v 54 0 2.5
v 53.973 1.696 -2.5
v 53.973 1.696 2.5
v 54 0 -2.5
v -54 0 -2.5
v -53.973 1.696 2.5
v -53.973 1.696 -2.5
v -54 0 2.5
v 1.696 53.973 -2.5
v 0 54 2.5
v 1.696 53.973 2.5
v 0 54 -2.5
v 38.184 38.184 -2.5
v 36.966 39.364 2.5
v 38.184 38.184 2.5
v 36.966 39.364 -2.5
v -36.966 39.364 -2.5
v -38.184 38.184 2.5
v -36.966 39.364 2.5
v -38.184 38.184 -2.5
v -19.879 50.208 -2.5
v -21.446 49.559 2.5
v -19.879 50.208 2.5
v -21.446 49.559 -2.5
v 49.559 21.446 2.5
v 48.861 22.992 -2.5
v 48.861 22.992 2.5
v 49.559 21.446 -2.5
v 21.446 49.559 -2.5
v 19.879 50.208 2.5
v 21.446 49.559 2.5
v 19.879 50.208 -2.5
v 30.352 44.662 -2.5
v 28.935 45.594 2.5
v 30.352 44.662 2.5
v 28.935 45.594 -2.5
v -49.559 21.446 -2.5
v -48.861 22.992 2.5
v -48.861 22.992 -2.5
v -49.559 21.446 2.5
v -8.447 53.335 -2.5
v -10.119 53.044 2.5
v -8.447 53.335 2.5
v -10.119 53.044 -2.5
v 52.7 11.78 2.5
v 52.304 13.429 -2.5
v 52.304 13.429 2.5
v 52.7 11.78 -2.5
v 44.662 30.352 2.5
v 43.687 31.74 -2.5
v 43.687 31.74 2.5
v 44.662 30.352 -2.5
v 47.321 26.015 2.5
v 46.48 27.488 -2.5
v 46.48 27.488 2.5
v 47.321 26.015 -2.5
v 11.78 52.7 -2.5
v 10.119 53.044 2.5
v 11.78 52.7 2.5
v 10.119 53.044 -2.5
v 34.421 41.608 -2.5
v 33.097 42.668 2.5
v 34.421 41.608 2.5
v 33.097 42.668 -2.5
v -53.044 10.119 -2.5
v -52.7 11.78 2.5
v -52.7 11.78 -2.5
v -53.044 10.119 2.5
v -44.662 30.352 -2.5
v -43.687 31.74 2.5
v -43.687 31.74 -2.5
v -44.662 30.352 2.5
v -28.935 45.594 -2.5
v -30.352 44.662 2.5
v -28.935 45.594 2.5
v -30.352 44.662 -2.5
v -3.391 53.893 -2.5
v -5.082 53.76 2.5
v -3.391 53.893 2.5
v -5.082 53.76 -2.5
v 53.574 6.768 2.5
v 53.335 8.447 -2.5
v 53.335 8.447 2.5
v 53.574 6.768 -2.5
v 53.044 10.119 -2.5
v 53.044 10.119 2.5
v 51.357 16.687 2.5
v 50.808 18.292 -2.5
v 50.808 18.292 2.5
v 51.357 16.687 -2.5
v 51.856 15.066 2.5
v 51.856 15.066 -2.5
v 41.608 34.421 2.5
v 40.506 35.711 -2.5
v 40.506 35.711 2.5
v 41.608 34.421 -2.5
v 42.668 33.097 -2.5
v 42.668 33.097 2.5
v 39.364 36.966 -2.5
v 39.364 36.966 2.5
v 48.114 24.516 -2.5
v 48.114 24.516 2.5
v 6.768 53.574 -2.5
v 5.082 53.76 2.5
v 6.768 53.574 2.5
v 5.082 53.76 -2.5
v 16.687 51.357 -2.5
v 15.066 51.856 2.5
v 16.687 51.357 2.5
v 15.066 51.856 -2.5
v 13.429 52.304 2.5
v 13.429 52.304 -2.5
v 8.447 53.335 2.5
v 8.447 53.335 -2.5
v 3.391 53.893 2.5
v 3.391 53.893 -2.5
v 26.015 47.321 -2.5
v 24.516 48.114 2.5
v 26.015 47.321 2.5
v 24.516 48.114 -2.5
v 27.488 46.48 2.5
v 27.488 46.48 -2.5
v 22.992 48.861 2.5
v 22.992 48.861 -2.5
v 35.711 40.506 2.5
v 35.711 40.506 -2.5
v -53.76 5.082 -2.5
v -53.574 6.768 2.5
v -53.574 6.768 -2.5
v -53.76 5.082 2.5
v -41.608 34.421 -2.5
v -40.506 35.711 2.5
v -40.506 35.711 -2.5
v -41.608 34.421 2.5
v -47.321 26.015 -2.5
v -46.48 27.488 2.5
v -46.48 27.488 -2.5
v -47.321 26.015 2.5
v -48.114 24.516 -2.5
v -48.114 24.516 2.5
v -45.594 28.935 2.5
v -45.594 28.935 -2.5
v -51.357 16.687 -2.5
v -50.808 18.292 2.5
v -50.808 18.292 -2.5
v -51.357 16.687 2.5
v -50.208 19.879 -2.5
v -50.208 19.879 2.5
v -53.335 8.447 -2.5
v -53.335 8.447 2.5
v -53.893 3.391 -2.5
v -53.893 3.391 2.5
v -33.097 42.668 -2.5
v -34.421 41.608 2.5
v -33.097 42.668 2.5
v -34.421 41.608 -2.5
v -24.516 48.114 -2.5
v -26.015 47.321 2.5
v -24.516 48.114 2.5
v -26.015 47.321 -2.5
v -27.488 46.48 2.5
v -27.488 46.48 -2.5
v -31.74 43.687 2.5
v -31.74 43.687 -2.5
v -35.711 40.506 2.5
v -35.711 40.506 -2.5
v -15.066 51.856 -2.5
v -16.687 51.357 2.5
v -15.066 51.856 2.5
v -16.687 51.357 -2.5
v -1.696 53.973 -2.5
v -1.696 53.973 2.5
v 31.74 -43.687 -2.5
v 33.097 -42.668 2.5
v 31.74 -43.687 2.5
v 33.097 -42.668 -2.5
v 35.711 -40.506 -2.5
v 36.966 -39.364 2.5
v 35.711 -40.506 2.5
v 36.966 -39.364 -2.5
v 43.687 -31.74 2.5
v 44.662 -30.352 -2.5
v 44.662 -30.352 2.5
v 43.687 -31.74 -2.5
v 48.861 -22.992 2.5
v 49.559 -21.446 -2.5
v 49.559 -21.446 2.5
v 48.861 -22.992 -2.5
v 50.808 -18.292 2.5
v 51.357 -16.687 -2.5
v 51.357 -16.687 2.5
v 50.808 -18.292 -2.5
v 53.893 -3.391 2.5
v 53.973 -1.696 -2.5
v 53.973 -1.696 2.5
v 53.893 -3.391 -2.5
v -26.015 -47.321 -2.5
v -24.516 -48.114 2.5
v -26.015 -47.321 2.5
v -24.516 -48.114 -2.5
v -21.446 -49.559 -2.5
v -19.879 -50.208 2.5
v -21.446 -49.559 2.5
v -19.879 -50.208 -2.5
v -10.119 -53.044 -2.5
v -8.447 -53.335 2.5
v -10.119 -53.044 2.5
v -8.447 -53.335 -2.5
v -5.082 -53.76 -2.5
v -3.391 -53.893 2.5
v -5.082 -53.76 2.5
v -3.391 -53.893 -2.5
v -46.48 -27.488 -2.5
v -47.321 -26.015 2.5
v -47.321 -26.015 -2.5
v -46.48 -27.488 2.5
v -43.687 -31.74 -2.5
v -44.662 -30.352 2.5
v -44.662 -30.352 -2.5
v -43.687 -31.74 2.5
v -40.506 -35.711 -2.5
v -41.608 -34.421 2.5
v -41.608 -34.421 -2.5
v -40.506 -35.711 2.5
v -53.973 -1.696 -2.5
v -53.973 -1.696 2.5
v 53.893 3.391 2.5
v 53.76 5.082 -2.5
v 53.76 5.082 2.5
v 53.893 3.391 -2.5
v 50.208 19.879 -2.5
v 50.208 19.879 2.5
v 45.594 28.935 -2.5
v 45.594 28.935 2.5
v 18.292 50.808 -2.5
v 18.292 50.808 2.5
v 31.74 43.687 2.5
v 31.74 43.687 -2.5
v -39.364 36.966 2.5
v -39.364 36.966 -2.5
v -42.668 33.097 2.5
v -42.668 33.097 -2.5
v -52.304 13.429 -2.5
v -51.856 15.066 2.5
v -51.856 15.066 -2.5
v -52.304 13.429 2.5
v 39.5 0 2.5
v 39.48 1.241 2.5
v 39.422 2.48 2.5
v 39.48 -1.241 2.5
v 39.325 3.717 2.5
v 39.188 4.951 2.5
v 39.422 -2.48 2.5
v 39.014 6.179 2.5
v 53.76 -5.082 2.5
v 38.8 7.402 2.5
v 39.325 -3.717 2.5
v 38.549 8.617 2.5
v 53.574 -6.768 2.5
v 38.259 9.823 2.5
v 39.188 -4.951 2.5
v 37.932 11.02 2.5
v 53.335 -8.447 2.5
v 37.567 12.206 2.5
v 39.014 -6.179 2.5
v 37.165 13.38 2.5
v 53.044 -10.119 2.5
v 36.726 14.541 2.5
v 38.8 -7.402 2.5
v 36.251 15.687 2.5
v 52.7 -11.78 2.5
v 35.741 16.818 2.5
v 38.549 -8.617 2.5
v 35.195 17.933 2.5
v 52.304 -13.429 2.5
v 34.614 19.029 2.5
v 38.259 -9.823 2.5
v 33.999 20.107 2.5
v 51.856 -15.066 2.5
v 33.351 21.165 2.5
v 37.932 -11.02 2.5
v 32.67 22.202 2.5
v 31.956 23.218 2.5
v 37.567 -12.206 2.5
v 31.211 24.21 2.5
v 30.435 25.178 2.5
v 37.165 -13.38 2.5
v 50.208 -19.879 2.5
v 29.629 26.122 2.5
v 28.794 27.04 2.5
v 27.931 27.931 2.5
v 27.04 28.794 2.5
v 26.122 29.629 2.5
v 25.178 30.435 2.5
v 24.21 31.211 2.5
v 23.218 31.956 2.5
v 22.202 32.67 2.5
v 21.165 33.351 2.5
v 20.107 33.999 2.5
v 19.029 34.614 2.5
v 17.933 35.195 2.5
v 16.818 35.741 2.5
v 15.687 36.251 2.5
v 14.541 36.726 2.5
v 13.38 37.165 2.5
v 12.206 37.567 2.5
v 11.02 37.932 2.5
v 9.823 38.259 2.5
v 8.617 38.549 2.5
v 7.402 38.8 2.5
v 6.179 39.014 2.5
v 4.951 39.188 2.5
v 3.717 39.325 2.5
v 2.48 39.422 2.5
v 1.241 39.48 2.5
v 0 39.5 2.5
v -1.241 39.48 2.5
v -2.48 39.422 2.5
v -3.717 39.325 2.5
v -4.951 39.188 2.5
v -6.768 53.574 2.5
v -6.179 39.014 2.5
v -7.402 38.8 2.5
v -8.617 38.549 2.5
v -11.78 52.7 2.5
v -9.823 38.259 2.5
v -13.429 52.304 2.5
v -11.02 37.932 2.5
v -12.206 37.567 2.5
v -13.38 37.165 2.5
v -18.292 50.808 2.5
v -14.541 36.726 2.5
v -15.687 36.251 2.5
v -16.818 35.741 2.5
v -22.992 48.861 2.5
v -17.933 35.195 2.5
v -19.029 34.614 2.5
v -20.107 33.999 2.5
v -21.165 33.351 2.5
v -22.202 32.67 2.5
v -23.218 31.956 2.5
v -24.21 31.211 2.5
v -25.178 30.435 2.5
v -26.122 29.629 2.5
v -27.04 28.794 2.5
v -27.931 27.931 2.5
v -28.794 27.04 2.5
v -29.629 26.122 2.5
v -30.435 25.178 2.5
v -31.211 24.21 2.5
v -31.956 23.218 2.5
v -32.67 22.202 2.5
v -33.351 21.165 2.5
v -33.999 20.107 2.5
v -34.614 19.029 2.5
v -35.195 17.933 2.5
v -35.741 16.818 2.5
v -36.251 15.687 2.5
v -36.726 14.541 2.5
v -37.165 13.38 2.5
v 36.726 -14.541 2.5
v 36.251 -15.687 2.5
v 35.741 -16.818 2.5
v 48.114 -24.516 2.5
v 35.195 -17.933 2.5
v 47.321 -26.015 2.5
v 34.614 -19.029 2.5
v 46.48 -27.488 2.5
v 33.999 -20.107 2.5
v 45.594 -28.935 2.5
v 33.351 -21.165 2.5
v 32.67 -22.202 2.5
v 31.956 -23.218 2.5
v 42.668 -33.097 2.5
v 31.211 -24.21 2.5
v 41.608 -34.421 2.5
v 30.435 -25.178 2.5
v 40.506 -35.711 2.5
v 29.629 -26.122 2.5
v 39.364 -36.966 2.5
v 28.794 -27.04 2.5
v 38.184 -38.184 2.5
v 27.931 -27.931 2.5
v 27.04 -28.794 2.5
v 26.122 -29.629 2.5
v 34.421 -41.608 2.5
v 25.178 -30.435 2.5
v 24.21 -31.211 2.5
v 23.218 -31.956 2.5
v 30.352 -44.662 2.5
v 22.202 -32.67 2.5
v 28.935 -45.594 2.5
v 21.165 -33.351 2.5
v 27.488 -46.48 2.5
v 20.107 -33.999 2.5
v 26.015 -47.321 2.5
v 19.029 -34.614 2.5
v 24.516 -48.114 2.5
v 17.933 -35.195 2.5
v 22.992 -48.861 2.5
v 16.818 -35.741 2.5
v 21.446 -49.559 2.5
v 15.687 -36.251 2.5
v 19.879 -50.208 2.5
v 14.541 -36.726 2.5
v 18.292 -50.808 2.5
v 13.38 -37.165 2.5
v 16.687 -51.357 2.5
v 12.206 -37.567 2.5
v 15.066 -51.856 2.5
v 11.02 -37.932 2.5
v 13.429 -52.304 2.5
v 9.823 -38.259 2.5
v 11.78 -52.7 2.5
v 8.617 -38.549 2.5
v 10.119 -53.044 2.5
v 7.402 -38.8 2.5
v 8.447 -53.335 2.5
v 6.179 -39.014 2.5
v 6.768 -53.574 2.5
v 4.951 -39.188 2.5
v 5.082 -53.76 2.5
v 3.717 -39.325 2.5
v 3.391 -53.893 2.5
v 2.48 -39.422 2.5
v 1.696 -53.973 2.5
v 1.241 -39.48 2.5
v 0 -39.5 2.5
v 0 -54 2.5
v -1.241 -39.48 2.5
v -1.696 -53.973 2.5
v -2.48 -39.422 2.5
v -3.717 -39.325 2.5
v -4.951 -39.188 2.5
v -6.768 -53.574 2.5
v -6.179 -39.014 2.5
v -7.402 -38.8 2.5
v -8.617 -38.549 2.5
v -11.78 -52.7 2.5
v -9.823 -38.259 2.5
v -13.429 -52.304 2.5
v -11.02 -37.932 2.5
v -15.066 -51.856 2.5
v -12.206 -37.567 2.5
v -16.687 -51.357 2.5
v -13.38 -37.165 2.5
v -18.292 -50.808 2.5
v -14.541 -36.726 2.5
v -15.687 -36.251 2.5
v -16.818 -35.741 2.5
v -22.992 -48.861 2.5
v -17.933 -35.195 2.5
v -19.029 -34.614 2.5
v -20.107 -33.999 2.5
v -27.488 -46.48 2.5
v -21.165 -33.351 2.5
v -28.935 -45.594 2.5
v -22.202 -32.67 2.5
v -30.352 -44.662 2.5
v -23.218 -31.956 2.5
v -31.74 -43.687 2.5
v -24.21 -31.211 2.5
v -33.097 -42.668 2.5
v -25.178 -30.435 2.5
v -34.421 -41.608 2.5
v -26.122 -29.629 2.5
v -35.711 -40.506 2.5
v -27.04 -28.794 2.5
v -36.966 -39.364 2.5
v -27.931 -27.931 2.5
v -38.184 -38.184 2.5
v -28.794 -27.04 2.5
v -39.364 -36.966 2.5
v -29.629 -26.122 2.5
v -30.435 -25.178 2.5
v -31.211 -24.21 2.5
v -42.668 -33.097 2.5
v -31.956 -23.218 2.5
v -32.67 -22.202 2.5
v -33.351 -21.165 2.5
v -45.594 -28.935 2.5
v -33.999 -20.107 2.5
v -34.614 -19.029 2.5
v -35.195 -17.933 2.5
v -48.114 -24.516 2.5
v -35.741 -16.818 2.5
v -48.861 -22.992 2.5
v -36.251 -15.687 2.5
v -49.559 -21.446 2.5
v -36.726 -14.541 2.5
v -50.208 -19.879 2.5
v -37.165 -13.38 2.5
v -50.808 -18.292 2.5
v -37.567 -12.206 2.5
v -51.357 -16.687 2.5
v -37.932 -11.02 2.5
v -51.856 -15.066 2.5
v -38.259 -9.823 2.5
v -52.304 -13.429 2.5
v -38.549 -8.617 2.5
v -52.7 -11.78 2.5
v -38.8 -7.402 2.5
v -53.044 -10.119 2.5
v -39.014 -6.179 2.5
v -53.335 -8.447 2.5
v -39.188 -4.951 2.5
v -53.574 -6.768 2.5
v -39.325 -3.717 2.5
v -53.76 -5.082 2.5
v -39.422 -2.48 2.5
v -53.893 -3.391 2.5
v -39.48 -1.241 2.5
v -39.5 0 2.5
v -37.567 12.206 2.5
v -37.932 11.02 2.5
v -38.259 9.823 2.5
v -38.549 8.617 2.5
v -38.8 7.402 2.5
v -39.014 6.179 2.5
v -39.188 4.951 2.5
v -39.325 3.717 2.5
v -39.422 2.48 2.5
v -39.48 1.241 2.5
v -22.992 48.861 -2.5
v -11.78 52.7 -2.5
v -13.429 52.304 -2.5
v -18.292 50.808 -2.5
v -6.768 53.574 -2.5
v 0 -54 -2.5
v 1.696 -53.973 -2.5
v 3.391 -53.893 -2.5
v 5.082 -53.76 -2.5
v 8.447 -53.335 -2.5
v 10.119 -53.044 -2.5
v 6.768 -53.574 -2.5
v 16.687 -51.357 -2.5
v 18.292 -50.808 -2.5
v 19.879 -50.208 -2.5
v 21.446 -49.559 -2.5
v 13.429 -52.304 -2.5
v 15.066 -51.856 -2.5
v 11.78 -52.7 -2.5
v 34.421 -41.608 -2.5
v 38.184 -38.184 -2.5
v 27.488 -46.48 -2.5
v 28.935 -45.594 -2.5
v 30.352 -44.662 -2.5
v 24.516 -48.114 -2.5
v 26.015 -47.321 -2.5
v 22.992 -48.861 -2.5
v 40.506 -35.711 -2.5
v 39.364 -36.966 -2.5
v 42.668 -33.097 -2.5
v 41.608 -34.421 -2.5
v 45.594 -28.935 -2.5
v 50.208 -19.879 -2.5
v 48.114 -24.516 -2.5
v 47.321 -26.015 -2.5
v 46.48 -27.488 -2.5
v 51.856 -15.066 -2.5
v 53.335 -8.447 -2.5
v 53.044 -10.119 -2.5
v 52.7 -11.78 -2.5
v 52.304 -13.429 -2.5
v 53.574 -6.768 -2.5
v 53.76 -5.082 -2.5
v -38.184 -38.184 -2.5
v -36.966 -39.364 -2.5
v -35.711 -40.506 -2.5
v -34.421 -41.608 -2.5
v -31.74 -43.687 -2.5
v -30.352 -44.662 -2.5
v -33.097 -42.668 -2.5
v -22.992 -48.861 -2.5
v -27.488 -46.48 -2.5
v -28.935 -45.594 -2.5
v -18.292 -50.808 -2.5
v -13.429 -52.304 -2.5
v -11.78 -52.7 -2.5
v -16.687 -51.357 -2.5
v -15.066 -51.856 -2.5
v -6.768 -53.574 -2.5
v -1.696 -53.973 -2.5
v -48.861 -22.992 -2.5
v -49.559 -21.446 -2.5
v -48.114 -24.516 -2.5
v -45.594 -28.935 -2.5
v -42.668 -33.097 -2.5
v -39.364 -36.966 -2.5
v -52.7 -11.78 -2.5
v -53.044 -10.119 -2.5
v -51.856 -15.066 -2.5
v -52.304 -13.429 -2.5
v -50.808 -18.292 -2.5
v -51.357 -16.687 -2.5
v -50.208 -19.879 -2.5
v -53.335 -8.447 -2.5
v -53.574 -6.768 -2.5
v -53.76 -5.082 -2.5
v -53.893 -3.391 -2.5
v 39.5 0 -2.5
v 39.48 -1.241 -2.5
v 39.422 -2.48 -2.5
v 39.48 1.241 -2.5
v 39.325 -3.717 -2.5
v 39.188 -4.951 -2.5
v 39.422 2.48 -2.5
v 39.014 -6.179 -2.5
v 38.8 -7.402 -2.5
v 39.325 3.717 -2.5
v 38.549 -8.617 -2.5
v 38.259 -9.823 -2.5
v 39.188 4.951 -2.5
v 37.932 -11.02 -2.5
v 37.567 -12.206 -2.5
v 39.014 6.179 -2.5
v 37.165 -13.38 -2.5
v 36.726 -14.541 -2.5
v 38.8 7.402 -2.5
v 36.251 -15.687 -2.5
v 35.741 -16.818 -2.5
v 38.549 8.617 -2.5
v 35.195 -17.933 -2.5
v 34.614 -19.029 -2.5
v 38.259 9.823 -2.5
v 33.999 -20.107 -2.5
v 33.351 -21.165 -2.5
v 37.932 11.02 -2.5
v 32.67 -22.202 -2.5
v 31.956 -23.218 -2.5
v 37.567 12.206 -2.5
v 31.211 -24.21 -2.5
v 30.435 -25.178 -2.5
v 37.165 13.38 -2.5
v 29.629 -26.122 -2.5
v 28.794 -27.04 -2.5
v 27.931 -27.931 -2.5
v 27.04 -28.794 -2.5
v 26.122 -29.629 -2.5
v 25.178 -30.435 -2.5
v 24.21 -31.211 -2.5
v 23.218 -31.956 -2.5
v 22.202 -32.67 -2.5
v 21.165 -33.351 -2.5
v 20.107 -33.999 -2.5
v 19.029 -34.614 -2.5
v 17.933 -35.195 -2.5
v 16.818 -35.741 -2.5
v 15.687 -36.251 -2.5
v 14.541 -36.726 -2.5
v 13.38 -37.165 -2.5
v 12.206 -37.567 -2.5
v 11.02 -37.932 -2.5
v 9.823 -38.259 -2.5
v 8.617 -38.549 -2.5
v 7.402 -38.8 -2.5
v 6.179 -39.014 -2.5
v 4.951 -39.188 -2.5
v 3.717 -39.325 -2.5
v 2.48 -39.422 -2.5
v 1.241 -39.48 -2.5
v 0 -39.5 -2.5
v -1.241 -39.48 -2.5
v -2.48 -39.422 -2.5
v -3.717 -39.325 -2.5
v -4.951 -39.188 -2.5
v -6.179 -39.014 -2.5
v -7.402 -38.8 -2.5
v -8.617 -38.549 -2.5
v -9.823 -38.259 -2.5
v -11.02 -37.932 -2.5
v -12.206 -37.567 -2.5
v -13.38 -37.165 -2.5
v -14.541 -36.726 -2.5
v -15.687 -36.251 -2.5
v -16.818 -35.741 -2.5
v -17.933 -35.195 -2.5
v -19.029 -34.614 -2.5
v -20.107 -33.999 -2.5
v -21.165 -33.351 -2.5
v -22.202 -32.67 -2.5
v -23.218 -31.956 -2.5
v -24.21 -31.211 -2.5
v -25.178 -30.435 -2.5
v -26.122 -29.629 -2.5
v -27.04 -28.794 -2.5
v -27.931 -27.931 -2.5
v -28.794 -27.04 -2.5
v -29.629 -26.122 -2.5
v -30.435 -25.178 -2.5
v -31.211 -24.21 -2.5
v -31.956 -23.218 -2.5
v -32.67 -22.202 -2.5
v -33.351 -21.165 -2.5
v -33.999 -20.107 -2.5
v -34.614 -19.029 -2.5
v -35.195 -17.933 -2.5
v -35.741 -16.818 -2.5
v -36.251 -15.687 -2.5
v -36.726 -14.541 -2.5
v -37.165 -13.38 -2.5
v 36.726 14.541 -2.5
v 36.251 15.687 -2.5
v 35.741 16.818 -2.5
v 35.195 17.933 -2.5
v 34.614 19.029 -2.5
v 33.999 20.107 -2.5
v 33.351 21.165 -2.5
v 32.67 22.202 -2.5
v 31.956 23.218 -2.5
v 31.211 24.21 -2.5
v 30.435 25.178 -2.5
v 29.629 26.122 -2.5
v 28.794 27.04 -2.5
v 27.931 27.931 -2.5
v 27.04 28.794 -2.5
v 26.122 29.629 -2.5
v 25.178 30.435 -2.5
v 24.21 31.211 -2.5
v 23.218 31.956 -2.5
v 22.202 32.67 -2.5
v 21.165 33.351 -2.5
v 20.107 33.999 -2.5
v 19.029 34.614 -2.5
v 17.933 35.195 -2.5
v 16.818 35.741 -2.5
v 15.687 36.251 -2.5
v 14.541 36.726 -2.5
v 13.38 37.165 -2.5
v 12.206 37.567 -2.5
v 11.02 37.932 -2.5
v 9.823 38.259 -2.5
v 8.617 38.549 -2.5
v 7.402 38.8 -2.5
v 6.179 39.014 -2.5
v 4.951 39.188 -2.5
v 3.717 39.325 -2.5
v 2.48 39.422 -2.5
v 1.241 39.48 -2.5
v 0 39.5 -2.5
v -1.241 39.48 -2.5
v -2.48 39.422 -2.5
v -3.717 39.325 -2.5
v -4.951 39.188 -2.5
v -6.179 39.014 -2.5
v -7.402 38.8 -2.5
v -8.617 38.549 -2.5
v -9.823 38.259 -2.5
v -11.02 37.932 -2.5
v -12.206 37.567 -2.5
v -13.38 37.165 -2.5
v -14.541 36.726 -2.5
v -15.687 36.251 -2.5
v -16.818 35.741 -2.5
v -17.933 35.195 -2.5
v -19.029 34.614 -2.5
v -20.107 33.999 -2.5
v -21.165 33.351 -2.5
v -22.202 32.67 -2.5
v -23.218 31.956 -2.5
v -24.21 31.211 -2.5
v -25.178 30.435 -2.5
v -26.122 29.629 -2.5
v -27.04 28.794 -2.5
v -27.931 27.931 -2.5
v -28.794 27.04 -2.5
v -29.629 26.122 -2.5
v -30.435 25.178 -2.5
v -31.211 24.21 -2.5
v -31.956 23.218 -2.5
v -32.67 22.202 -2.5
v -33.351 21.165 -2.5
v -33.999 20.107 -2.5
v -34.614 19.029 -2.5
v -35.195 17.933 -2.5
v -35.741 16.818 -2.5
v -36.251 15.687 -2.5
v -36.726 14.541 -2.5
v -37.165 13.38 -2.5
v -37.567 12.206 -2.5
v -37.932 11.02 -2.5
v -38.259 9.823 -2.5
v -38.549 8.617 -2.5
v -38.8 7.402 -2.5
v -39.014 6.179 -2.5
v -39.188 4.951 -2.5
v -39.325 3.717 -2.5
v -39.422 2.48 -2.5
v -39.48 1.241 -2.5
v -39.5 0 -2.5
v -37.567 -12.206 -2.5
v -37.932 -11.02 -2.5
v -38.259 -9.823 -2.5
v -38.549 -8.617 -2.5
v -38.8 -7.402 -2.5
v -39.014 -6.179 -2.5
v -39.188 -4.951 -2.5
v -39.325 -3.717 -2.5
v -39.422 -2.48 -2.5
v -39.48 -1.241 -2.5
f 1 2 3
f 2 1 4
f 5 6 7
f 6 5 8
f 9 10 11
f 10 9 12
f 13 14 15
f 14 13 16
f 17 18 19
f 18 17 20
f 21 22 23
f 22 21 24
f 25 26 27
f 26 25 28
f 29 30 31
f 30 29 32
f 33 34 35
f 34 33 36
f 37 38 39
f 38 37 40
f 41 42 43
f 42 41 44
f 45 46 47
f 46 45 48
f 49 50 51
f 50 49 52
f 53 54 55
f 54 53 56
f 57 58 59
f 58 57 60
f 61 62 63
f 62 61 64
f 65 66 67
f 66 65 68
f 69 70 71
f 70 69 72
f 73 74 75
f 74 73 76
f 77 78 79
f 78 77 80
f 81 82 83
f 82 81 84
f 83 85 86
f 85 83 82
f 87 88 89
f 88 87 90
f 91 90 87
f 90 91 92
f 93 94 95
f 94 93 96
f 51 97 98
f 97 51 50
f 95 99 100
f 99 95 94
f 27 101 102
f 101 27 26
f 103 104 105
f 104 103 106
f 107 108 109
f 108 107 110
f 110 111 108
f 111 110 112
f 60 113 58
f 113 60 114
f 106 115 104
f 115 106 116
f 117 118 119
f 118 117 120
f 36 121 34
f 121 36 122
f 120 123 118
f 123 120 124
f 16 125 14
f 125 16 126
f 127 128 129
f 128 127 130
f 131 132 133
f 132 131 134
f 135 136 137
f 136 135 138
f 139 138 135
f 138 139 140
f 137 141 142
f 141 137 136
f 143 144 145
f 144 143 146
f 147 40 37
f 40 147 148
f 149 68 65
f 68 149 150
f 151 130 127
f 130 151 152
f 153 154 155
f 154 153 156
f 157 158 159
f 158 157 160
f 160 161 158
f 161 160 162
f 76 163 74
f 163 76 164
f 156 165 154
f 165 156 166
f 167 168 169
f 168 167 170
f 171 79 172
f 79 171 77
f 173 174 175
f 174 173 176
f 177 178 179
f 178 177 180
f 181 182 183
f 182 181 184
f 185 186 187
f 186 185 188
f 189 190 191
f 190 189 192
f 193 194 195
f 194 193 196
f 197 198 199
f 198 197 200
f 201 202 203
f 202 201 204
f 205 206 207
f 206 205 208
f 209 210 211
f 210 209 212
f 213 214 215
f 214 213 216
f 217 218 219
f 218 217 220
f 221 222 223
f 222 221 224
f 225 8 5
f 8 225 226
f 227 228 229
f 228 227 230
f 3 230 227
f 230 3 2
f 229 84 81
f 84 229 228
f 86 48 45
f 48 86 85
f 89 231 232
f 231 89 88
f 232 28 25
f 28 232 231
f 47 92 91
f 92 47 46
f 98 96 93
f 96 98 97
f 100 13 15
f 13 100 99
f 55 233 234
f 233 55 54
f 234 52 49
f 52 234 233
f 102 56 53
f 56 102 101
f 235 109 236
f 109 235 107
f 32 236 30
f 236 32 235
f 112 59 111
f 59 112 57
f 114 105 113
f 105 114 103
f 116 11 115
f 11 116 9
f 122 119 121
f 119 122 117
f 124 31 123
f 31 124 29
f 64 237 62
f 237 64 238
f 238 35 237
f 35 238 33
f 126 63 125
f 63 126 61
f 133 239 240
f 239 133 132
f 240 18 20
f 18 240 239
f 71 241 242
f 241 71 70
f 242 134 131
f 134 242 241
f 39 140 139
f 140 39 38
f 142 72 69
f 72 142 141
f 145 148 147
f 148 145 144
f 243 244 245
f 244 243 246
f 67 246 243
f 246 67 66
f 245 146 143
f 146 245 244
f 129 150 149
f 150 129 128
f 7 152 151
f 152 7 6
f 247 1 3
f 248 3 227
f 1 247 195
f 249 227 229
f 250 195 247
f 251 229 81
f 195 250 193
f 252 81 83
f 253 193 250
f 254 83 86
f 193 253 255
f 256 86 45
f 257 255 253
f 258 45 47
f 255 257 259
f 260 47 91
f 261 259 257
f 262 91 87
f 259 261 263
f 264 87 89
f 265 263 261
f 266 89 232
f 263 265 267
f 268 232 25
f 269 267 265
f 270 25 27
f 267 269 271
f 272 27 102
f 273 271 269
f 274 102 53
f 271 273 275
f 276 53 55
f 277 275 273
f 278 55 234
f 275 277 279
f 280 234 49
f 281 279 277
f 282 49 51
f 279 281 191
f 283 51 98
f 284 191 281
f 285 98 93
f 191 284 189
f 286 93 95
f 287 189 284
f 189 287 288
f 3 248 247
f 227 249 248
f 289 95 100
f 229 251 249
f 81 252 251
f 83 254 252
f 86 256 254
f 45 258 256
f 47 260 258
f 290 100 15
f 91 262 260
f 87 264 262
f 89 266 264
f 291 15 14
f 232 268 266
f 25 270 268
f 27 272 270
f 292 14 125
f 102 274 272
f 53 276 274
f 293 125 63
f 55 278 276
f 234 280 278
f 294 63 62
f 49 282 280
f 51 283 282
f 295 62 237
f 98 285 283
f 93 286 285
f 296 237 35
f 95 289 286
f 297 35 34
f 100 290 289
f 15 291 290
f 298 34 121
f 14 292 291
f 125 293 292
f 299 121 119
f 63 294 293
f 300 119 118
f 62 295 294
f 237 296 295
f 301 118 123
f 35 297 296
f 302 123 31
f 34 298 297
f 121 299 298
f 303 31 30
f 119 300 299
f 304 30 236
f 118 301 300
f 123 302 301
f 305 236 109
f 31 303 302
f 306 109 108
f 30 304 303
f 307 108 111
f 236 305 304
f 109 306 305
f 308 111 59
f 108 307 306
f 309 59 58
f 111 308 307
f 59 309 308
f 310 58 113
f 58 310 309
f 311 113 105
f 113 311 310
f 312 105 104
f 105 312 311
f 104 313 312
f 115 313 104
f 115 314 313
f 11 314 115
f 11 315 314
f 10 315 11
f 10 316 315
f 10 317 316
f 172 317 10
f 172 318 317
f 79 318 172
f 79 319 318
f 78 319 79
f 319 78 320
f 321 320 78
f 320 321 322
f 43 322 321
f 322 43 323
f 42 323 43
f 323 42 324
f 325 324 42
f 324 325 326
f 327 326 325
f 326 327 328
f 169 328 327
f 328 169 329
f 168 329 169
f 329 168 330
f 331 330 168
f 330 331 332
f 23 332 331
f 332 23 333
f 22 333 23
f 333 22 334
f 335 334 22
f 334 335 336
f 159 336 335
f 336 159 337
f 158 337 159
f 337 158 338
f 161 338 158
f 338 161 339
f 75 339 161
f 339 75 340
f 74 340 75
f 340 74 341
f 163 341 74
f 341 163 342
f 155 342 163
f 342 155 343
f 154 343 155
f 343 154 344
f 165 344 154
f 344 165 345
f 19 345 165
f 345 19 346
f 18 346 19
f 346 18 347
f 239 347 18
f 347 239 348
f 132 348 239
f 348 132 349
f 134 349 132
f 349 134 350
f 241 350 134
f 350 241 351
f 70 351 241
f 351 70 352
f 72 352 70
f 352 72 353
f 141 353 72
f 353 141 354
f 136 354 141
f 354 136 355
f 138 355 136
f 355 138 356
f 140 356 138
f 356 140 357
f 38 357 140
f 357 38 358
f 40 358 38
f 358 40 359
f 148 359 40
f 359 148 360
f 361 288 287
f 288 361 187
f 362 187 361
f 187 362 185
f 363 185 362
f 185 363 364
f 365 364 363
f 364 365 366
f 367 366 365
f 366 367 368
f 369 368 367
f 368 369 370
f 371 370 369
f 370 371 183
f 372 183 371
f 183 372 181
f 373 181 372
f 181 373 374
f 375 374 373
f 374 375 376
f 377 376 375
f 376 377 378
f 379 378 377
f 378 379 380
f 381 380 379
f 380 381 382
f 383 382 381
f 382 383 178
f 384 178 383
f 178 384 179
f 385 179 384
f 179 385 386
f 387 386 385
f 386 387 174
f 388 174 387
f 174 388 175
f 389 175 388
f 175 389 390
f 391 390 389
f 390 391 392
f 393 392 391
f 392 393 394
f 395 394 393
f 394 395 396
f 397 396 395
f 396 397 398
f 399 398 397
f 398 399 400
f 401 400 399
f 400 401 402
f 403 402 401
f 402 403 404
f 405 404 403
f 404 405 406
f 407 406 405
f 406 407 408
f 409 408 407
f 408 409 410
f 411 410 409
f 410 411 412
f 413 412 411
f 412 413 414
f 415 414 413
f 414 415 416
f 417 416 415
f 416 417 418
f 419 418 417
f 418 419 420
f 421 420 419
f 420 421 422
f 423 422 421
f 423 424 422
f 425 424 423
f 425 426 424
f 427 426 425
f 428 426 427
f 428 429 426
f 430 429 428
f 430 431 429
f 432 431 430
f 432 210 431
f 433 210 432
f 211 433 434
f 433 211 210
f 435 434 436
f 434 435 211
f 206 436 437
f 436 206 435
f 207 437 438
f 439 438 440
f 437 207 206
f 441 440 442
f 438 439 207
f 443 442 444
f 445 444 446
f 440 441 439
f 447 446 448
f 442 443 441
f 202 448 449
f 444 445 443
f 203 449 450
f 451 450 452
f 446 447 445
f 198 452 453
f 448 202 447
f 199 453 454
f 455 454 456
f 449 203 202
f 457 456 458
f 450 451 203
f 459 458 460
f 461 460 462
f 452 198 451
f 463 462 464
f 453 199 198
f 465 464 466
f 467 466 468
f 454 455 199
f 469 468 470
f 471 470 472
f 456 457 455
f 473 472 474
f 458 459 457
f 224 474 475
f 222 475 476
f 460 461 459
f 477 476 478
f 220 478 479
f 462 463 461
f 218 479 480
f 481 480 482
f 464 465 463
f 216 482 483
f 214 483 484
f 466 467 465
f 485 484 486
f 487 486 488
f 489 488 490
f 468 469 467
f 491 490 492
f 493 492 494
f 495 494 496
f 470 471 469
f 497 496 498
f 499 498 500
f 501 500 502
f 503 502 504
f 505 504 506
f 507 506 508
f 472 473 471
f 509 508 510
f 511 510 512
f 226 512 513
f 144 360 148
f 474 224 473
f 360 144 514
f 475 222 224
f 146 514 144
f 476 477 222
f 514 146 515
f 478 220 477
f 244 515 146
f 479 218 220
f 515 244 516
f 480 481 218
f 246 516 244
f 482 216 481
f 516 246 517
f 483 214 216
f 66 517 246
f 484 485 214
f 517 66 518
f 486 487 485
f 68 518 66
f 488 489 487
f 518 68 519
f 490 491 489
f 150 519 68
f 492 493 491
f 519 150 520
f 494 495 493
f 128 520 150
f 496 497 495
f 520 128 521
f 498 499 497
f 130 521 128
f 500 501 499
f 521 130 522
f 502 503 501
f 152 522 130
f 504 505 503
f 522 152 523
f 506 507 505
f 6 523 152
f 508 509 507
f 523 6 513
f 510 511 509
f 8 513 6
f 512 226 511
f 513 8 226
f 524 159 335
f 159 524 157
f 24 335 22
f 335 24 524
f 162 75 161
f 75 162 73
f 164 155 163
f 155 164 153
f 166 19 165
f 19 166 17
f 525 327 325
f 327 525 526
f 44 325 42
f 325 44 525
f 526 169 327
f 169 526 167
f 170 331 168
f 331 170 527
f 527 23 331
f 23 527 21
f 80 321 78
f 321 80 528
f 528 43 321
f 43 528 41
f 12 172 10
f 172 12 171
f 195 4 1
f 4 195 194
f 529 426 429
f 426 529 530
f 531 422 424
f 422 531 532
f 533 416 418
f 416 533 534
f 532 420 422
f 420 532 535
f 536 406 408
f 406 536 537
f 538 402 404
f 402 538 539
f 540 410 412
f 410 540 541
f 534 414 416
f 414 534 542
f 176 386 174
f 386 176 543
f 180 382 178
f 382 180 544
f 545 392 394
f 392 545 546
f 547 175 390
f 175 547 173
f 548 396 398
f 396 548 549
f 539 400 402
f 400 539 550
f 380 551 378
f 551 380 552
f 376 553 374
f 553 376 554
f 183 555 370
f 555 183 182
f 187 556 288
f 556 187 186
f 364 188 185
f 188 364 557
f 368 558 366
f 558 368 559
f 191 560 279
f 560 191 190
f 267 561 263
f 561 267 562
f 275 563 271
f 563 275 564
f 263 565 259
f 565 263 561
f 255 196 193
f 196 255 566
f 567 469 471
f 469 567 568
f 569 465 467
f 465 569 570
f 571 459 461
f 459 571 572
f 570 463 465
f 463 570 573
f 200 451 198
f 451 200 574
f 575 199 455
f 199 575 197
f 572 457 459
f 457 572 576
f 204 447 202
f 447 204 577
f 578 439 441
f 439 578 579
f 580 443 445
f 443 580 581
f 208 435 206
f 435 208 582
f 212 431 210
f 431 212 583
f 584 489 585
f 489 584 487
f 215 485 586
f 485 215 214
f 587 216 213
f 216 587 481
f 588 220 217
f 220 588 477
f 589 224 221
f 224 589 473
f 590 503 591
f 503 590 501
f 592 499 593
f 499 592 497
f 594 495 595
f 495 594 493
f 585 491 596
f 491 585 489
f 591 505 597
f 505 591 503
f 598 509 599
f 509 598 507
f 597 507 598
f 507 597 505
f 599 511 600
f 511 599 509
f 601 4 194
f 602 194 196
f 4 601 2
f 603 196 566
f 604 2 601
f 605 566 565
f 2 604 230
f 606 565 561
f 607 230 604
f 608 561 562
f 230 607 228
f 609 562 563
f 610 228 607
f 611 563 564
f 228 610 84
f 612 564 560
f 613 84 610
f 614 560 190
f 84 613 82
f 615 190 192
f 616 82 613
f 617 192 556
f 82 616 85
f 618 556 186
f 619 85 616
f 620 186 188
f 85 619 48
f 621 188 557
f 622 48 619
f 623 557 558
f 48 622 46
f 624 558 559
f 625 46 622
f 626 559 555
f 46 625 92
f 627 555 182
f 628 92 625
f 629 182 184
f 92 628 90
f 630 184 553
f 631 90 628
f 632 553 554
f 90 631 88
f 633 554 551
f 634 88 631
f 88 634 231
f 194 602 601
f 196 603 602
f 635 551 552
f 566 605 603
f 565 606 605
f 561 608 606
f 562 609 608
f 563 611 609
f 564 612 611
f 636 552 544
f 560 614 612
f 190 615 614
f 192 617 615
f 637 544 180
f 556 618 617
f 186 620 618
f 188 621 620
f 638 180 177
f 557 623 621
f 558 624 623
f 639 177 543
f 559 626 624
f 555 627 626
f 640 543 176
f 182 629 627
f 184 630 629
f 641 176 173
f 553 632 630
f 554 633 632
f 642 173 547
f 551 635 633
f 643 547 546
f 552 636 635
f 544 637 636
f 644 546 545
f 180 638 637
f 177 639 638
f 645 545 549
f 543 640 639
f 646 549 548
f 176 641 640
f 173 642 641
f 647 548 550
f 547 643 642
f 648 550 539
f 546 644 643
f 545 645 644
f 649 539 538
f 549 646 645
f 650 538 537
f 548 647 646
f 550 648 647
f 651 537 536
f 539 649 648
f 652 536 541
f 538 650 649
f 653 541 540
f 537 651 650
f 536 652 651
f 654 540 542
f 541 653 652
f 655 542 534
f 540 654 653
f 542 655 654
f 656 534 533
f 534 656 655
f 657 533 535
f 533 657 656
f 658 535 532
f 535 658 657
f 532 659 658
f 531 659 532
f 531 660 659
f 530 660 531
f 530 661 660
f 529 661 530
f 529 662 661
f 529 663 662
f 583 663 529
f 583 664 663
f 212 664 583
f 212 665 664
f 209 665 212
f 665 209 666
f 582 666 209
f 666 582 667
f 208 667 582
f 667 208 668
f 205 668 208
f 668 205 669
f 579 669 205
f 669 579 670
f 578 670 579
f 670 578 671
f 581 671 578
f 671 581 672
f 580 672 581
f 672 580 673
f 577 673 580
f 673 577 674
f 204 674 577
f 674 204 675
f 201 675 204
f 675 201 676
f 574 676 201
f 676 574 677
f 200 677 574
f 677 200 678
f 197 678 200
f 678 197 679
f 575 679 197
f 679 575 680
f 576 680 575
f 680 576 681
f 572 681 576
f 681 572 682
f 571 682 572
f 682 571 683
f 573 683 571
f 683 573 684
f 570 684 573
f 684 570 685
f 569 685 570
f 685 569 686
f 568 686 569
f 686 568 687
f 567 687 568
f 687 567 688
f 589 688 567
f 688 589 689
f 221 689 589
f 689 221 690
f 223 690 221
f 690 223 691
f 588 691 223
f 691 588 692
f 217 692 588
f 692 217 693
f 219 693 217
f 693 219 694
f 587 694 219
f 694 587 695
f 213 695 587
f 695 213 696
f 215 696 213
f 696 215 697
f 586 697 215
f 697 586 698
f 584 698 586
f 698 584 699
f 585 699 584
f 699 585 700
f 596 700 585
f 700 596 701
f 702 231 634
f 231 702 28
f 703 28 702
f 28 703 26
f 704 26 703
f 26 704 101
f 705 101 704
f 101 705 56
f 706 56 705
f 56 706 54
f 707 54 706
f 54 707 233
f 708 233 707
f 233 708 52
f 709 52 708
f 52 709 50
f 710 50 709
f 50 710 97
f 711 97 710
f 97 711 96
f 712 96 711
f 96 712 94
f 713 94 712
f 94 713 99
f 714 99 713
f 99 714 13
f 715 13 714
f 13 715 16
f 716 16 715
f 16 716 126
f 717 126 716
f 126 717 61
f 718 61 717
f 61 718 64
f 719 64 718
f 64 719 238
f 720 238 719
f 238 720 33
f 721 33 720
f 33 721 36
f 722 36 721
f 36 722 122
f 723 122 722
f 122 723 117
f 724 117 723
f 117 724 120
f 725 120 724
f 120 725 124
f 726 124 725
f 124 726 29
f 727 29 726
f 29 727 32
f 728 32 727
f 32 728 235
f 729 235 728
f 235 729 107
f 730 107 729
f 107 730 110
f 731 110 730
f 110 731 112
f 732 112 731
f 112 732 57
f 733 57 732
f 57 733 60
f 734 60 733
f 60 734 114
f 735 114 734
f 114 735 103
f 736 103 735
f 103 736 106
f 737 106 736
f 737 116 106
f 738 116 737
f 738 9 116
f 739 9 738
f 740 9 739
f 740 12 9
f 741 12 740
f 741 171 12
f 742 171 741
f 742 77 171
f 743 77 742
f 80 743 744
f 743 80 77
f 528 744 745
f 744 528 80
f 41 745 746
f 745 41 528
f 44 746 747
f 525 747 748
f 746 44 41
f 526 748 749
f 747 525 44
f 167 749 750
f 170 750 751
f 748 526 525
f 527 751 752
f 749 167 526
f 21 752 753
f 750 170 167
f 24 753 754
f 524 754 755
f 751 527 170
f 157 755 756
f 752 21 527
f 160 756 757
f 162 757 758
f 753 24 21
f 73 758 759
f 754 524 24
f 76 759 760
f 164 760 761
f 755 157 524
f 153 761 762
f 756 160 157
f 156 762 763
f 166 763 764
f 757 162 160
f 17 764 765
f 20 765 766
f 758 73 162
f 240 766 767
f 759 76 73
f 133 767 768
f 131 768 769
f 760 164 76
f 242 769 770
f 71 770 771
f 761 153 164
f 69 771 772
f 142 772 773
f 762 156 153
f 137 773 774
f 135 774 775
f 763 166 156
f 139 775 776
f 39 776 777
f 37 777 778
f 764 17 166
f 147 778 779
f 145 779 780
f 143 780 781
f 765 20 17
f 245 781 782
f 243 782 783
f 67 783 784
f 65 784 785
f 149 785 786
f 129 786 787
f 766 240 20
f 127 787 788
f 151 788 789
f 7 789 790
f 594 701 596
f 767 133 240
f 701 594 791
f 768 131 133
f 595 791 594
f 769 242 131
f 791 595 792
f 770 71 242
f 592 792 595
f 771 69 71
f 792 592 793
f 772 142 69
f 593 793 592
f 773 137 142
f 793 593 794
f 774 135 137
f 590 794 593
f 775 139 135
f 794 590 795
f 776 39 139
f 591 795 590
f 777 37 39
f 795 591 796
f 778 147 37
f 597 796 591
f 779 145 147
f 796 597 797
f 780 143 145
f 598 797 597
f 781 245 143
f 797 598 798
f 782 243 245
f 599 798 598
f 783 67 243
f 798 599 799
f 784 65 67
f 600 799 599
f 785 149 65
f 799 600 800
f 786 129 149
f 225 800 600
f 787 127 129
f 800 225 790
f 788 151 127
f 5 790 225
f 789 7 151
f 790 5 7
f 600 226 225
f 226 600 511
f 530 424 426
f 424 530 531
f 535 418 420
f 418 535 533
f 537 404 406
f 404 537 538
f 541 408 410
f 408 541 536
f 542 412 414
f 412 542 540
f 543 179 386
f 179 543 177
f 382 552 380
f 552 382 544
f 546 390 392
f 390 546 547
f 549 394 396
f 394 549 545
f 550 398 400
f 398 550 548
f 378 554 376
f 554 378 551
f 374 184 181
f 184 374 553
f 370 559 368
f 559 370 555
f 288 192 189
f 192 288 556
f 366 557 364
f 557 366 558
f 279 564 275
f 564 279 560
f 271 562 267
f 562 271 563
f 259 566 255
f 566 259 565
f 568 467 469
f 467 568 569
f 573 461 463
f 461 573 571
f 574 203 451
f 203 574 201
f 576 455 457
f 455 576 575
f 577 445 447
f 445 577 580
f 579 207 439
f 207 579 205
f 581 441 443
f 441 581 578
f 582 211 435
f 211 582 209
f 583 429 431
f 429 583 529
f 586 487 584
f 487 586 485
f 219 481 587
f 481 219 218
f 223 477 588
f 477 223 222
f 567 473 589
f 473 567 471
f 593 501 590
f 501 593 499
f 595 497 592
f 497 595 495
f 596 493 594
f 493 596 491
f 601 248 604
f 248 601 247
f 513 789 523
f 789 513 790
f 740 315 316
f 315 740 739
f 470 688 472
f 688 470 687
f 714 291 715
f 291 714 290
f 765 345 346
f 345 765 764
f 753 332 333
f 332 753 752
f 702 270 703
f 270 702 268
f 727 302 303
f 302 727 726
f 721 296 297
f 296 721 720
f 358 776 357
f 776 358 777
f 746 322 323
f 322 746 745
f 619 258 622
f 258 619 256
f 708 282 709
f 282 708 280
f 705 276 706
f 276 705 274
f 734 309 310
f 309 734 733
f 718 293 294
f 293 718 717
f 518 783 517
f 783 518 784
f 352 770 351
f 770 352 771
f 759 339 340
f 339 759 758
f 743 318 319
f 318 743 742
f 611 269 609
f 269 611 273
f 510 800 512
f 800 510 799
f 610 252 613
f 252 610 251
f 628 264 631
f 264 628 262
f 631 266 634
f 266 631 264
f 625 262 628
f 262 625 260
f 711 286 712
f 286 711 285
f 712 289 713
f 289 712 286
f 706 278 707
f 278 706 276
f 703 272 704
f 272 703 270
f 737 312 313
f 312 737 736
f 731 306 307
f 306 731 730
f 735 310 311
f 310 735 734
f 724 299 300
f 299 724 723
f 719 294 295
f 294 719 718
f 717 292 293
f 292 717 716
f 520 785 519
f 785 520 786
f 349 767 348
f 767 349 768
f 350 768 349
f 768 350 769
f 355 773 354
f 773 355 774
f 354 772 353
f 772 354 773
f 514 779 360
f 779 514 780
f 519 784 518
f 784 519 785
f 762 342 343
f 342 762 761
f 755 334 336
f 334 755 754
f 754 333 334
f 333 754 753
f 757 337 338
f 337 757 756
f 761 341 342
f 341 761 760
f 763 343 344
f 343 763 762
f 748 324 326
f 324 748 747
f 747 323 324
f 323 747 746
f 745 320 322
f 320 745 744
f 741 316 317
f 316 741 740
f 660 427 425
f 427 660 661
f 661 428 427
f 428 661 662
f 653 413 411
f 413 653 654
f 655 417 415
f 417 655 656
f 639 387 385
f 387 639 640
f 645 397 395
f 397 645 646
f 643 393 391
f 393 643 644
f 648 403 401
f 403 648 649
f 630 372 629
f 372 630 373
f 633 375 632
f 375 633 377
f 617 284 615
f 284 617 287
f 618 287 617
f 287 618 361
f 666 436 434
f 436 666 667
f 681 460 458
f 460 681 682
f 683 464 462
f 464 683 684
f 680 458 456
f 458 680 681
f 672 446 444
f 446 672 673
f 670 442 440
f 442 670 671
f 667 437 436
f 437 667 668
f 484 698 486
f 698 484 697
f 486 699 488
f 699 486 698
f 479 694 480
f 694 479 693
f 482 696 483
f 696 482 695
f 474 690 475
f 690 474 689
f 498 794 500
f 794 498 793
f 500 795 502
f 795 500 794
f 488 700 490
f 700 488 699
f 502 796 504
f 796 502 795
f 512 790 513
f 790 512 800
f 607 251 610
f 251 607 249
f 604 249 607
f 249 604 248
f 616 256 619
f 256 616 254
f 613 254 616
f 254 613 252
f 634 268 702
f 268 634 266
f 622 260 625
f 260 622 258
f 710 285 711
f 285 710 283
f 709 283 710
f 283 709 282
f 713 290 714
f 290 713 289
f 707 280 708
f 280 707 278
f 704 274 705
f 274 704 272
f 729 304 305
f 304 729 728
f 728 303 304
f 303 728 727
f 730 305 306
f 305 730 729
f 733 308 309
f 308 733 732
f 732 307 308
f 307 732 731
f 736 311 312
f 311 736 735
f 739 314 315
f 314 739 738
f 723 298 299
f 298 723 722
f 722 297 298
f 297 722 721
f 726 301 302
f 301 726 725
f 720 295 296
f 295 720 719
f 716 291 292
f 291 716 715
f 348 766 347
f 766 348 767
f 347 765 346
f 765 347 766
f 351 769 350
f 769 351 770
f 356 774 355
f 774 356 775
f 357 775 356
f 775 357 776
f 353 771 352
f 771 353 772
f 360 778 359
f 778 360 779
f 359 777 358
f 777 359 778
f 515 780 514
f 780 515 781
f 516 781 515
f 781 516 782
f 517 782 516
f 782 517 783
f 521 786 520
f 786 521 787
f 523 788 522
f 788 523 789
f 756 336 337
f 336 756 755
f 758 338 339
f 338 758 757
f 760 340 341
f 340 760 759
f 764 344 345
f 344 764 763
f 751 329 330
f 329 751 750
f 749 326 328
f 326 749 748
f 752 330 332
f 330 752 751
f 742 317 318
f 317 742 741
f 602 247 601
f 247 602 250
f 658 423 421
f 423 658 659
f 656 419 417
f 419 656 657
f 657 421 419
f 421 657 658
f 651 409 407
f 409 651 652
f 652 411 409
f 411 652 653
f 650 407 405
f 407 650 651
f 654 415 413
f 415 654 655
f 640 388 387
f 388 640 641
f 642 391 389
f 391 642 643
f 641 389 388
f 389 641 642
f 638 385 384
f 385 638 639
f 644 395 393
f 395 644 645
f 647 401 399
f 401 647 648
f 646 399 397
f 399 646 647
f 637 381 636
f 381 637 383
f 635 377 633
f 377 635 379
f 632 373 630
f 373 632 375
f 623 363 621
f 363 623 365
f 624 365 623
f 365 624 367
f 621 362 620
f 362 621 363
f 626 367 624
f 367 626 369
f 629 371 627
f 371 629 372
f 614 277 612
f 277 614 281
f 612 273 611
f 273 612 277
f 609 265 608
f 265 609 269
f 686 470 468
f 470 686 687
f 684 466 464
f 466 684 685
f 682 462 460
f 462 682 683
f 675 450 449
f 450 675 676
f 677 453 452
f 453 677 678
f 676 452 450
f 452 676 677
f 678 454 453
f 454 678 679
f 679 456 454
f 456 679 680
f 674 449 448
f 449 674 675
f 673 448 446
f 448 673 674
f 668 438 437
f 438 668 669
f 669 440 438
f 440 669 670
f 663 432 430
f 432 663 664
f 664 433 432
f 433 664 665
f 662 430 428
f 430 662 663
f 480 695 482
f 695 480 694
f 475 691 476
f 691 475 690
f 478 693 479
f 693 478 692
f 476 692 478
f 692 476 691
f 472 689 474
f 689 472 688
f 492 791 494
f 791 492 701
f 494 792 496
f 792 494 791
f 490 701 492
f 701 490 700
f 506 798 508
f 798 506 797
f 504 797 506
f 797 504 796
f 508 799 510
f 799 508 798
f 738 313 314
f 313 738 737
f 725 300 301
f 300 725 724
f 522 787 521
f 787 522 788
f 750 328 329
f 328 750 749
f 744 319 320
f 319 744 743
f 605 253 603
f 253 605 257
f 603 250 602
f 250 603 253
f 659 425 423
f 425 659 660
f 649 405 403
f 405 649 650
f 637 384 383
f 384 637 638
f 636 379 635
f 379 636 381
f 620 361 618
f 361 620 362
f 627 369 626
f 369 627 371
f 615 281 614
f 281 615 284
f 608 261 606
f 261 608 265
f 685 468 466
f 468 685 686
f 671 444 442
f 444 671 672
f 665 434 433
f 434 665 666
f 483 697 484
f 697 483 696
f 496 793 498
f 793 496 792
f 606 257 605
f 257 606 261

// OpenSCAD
// Holder di holder
$fn=200;

d_holderdiholder=108;
h_holder=5;

d_holder=79;
h_holder=5;
d_camera=39.2; //

difference(){
    // Holder di holder
    cylinder(h=h_holder,r=d_holderdiholder/2, center = true);
    // "Hole para holder
    cylinder(h=h_holder,r=d_holder/2, center = true);
}
